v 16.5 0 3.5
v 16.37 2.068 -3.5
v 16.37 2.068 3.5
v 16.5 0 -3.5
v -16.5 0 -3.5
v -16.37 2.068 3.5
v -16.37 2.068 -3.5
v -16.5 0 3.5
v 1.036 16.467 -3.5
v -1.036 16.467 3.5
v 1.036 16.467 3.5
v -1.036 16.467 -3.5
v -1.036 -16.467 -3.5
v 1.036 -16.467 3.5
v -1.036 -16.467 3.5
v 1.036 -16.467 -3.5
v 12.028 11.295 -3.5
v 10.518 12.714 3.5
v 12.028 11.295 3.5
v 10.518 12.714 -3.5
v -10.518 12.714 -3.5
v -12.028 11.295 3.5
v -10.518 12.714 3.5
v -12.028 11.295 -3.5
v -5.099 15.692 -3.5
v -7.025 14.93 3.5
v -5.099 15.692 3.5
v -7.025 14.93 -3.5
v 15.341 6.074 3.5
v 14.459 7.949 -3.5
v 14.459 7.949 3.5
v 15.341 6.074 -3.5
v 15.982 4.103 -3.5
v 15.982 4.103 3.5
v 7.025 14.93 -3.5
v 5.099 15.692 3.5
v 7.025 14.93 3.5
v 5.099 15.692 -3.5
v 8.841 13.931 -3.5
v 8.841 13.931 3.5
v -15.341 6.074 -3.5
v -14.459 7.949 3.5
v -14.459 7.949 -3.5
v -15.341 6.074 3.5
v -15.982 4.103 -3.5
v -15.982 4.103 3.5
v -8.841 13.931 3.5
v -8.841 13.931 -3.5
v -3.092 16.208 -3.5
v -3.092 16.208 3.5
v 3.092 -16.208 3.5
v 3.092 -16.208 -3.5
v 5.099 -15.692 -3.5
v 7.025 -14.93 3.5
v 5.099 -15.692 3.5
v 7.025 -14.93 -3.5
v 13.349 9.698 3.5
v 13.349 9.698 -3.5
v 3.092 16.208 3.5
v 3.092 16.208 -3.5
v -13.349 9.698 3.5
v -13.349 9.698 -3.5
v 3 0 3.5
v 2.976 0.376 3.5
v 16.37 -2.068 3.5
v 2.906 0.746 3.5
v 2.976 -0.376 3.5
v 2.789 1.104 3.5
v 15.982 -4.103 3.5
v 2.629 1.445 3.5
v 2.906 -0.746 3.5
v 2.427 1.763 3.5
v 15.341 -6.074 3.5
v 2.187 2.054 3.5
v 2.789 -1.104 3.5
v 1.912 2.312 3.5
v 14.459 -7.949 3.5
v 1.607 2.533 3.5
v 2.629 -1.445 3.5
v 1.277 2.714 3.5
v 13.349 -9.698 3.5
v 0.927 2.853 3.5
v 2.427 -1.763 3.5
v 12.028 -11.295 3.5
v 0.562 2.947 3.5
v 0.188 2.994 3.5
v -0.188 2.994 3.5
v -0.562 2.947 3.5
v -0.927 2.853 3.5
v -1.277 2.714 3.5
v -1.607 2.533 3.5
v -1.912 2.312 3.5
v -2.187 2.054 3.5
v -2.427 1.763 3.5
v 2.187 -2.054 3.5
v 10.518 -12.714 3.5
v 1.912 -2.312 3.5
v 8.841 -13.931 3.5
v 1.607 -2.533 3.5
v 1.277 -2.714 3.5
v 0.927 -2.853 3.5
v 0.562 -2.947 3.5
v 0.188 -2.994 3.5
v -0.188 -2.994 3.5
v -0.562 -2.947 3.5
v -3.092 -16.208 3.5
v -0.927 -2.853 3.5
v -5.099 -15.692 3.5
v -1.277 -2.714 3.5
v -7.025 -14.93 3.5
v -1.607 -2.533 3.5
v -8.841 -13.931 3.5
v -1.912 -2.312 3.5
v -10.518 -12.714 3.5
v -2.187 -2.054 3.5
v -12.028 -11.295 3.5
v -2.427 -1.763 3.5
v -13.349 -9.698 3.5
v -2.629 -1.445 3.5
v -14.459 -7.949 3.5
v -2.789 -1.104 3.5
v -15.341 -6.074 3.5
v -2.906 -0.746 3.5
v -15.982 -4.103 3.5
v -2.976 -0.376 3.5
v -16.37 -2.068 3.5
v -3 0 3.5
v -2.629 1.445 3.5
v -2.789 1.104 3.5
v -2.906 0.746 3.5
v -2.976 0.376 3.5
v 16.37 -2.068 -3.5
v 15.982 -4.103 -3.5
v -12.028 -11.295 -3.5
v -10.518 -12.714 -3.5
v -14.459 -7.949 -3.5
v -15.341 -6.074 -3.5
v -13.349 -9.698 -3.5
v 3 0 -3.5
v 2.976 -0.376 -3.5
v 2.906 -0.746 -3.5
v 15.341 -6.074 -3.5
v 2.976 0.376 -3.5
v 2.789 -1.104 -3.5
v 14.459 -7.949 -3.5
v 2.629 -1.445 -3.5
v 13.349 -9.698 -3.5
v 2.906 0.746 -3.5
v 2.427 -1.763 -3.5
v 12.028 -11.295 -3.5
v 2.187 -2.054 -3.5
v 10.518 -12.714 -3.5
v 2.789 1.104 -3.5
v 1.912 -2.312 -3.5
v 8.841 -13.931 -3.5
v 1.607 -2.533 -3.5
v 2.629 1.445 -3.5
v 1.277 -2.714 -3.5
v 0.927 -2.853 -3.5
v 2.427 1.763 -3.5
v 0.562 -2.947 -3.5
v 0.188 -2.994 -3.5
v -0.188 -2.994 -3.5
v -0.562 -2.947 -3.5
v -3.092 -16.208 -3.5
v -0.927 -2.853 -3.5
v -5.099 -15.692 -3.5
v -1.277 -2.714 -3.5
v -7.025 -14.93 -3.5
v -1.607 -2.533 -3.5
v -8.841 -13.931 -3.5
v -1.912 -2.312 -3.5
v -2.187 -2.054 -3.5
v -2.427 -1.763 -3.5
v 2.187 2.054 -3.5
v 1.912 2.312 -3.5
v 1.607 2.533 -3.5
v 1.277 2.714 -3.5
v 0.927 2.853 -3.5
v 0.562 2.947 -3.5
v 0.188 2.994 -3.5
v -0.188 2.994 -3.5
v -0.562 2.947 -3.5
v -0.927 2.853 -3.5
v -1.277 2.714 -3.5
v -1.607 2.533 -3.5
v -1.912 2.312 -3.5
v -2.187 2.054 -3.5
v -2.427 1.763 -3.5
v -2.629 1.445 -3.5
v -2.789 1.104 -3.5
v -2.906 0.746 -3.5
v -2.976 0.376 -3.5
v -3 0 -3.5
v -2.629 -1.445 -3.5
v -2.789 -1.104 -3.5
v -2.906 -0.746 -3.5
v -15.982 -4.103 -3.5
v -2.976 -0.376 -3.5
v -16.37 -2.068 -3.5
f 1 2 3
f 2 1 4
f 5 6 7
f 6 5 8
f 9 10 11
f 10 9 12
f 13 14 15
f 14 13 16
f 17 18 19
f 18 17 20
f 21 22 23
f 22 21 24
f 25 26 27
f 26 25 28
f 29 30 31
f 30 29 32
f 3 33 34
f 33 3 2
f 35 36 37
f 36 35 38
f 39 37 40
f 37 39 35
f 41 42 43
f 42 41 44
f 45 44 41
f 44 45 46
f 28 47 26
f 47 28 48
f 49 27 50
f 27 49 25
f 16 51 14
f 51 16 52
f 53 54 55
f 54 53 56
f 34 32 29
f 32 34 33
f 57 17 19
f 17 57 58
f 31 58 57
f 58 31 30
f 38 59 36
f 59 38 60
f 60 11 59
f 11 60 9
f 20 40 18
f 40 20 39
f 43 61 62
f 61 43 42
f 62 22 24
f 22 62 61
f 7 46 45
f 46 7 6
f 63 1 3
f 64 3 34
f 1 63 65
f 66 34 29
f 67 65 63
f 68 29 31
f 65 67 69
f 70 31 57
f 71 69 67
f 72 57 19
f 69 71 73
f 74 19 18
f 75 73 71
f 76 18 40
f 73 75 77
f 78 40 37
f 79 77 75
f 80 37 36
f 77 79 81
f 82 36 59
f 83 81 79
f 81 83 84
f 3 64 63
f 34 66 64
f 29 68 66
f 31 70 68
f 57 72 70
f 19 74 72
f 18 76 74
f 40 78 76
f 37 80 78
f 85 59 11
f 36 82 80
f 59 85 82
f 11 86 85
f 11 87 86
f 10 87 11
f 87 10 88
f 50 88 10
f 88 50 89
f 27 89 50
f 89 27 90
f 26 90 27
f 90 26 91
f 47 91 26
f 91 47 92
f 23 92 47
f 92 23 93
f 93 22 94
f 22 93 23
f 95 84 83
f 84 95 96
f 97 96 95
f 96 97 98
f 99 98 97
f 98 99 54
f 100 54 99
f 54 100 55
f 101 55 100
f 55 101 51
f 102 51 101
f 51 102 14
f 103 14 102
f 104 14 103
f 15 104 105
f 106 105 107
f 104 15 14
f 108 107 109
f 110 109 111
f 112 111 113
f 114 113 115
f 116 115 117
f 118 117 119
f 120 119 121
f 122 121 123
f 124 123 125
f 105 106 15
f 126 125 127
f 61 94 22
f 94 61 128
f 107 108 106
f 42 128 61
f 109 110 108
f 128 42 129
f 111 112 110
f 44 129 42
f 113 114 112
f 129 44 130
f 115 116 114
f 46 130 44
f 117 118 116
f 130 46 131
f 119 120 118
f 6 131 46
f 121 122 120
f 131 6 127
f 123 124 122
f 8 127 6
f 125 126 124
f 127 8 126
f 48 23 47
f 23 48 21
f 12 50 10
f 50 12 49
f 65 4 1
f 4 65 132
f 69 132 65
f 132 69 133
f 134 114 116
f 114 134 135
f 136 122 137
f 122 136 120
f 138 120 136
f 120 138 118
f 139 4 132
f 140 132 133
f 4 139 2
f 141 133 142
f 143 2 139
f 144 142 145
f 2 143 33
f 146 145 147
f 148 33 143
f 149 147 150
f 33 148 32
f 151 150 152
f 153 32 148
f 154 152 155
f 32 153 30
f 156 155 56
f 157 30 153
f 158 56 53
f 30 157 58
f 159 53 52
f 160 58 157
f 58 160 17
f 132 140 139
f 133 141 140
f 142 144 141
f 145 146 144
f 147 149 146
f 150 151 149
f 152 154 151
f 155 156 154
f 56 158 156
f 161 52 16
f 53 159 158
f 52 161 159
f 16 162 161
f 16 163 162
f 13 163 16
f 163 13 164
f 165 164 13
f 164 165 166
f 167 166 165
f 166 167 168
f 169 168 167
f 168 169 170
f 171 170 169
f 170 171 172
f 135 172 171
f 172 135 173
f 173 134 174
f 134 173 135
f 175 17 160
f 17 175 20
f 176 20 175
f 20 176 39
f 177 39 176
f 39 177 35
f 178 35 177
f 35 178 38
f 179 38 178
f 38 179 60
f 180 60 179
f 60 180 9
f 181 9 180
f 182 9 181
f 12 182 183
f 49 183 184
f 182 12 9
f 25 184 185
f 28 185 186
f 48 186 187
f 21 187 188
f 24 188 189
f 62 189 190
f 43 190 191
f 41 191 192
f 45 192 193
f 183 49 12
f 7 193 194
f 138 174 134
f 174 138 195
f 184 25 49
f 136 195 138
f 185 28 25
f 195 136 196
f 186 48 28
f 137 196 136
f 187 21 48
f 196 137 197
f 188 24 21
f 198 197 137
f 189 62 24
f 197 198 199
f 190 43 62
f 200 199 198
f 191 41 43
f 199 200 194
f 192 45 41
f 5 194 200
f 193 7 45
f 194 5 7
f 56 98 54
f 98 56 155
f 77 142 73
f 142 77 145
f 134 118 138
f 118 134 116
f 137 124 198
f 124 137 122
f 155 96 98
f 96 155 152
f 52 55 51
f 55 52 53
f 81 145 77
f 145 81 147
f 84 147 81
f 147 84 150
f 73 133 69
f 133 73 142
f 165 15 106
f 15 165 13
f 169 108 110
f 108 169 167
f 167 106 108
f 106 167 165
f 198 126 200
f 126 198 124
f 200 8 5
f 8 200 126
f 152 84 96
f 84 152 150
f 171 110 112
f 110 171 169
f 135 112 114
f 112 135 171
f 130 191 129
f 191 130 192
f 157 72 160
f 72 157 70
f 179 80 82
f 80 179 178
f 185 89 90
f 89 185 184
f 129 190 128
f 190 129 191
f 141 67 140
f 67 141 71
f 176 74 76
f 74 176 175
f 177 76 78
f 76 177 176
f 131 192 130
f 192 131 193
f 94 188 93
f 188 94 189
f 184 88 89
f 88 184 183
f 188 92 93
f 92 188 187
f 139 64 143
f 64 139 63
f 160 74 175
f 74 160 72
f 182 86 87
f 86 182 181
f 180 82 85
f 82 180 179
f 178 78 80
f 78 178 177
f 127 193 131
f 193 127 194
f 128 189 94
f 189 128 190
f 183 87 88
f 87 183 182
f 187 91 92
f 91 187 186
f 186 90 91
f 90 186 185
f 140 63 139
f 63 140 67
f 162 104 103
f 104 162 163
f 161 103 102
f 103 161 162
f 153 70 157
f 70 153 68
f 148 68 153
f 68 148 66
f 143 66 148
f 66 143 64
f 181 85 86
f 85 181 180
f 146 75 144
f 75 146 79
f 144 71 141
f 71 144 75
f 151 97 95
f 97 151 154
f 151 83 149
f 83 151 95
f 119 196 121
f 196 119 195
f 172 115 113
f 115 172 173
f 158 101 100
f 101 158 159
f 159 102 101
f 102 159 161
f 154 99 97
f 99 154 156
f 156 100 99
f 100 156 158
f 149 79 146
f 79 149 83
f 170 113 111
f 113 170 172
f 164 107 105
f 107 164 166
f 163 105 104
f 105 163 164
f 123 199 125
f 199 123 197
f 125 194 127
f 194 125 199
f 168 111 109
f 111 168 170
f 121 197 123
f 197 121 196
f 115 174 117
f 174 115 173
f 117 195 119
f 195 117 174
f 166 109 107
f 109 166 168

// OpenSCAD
$fn = 50;


difference() {
	union() {
		translate(v = [0, 0, -3.5000000000]) {
			cylinder(h = 7, r = 16.5000000000);
		}
	}
	union() {
		translate(v = [0, 0, -100.0000000000]) {
			cylinder(h = 200, r = 3);
		}
	}
}
